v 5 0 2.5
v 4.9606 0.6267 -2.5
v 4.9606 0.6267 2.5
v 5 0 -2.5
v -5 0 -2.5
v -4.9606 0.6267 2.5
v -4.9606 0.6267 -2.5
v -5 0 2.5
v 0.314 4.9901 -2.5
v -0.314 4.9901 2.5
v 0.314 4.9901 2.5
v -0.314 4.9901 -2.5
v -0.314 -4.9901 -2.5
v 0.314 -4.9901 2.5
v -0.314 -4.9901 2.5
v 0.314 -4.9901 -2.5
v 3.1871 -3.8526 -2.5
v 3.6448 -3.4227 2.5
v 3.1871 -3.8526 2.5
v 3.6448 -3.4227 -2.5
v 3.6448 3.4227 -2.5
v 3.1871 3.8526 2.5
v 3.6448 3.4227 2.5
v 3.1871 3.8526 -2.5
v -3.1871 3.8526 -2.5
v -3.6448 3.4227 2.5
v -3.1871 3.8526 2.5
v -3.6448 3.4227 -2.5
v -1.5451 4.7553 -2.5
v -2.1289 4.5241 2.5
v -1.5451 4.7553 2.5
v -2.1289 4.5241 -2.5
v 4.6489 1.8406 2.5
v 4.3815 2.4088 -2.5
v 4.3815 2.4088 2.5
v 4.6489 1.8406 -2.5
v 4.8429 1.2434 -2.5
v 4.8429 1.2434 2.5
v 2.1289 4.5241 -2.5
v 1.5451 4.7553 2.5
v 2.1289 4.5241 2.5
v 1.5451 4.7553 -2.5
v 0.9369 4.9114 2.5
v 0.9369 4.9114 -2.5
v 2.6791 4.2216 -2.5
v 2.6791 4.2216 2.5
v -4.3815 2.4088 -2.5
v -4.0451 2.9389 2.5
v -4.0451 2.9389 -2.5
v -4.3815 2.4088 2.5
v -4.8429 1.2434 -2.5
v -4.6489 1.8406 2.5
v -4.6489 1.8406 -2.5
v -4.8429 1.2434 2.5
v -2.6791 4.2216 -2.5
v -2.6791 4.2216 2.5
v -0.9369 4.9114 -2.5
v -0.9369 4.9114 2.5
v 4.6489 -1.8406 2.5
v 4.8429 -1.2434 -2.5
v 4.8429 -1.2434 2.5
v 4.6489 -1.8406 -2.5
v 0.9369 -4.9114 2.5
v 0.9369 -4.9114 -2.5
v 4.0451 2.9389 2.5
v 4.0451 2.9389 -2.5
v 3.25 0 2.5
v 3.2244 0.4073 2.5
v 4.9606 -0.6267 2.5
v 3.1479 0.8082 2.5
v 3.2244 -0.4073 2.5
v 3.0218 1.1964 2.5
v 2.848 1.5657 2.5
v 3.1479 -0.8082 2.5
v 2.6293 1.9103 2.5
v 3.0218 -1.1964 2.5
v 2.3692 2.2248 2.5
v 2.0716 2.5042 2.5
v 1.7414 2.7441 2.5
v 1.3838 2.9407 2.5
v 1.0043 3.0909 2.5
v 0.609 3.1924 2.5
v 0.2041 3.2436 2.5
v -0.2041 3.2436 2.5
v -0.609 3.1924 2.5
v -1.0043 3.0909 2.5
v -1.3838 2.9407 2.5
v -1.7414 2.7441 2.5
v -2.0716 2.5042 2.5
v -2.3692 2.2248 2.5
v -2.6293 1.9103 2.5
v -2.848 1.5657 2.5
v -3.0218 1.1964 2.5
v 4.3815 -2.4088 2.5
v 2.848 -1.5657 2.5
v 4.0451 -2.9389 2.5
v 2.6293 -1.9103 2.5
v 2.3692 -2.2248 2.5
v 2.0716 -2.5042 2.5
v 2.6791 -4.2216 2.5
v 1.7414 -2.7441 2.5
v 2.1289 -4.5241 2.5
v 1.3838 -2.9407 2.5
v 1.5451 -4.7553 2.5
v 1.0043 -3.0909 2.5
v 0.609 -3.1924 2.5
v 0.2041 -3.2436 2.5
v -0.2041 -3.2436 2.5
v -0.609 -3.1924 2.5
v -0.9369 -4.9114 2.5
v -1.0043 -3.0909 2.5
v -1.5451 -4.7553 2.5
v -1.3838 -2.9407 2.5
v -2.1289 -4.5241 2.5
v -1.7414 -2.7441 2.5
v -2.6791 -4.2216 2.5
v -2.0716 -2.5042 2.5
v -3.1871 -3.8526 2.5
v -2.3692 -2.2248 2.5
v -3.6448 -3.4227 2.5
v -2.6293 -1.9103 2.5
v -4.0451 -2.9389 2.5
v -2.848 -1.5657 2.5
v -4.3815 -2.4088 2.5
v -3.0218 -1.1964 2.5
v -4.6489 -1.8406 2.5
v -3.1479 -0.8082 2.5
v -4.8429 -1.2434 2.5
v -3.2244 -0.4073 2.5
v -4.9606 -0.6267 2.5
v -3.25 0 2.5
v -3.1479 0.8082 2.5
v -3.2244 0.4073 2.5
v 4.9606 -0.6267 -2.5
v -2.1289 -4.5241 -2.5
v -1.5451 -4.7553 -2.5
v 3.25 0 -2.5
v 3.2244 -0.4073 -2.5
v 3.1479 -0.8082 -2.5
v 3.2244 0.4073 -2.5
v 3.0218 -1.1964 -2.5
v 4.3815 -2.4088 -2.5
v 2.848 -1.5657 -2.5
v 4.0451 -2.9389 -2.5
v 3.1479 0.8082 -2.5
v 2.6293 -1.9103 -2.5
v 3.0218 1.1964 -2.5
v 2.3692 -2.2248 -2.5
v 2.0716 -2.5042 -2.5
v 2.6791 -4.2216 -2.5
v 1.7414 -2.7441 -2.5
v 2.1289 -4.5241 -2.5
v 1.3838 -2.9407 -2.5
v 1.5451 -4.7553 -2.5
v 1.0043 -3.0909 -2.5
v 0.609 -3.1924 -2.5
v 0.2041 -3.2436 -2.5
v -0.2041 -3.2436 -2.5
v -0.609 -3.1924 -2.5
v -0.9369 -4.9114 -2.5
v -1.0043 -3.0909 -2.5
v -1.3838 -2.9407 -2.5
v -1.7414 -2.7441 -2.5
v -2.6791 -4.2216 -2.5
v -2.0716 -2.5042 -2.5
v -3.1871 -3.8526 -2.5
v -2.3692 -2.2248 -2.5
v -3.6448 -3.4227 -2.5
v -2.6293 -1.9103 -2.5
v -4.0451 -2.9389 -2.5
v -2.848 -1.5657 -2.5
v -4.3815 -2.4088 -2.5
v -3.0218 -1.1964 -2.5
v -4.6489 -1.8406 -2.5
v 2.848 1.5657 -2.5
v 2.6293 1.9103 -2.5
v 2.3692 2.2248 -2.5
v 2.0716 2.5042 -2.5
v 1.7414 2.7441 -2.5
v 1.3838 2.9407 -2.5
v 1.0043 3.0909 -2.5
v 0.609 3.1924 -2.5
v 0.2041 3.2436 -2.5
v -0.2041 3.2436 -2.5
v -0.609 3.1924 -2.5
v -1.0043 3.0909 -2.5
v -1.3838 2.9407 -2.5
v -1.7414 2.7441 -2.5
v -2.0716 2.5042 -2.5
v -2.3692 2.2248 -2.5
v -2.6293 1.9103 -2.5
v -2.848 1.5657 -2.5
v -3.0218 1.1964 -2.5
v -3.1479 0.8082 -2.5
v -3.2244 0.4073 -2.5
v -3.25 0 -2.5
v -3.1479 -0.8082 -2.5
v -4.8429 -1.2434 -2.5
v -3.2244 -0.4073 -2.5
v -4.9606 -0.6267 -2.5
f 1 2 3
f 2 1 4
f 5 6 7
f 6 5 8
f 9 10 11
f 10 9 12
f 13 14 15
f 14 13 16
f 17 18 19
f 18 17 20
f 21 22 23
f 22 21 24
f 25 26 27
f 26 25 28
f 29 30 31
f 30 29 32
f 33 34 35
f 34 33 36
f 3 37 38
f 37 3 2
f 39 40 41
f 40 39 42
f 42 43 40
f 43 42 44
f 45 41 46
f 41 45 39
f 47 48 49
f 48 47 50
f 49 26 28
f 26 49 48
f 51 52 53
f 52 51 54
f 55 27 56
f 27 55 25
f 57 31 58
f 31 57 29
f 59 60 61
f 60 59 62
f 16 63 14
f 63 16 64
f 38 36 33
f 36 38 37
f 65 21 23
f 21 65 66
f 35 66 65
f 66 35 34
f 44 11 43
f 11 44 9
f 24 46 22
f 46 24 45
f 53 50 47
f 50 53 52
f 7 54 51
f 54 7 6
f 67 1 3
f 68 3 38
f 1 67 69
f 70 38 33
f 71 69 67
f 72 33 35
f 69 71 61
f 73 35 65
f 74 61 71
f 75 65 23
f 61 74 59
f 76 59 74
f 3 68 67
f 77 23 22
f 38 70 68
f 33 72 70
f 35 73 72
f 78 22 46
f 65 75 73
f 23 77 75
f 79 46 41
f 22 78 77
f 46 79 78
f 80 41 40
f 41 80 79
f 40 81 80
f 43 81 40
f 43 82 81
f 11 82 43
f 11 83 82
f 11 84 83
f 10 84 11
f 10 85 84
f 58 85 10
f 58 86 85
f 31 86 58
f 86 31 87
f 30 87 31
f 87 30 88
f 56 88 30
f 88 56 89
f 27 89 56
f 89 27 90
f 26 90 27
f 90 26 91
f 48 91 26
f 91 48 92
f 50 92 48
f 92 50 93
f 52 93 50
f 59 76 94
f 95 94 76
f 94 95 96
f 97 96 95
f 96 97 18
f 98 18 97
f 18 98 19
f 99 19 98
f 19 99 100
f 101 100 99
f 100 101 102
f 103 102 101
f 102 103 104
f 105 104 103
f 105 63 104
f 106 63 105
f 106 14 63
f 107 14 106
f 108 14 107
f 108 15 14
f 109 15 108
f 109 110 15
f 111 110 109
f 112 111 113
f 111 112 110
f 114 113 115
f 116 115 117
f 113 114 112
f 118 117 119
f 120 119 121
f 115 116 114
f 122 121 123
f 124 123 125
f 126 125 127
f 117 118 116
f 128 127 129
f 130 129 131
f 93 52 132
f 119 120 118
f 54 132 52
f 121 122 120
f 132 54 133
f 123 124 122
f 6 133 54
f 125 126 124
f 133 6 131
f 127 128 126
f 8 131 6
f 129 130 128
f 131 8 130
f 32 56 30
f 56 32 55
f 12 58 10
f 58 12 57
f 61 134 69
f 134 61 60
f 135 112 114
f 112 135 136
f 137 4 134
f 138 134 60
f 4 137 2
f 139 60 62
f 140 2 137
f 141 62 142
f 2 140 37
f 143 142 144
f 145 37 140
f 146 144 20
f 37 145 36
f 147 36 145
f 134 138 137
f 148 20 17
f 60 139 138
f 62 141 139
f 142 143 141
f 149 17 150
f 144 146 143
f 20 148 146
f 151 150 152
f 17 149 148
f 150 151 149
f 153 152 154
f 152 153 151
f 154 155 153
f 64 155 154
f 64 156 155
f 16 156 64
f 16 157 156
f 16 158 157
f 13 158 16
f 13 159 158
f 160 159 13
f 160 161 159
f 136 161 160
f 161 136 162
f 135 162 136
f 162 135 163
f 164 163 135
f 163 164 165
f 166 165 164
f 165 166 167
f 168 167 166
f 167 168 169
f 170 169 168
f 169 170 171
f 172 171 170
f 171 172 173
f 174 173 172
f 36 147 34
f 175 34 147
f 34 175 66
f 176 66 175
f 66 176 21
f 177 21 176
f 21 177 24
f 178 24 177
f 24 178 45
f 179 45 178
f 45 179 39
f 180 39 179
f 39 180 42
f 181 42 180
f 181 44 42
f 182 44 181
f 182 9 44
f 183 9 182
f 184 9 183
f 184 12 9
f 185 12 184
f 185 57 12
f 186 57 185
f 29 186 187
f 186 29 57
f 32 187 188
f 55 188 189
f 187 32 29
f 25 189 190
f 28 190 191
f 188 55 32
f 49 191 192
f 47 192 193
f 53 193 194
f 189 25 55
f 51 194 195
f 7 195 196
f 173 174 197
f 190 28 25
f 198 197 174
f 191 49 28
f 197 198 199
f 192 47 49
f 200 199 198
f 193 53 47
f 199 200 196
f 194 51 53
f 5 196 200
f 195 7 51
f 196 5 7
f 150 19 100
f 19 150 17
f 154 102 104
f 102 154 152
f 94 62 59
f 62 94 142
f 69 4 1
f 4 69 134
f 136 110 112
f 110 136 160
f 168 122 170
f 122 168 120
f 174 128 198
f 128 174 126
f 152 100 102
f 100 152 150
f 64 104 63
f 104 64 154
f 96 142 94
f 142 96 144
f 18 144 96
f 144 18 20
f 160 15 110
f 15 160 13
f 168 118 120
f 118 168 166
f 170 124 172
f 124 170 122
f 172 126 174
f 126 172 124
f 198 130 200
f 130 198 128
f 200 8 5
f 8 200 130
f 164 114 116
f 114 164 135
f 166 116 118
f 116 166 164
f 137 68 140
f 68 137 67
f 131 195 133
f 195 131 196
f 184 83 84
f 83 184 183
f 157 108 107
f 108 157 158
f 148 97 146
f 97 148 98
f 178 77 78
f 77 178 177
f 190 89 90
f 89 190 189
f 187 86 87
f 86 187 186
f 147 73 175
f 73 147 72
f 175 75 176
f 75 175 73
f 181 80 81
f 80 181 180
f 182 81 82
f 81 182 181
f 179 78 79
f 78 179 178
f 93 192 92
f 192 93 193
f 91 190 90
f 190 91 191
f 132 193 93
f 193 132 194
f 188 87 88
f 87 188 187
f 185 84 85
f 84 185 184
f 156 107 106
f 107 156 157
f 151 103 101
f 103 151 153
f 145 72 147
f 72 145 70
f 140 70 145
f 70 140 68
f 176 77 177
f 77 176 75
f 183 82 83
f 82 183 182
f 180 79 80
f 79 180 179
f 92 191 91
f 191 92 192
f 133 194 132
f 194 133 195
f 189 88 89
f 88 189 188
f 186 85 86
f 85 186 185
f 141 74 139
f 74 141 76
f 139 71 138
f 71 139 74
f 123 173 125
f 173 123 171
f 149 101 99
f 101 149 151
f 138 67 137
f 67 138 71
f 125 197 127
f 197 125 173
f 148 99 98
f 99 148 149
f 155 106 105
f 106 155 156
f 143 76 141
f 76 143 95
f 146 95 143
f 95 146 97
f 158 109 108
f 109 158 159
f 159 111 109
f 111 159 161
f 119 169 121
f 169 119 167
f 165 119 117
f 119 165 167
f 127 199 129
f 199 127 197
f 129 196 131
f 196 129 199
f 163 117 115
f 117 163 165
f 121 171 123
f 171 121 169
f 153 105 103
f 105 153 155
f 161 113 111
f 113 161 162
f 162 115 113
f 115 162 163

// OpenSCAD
$fn = 50;


difference() {
	union() {
		translate(v = [0, 0, -2.5000000000]) {
			cylinder(h = 5, r = 5.0000000000);
		}
	}
	union() {
		translate(v = [0, 0, -100.0000000000]) {
			cylinder(h = 200, r = 3.2500000000);
		}
	}
}
